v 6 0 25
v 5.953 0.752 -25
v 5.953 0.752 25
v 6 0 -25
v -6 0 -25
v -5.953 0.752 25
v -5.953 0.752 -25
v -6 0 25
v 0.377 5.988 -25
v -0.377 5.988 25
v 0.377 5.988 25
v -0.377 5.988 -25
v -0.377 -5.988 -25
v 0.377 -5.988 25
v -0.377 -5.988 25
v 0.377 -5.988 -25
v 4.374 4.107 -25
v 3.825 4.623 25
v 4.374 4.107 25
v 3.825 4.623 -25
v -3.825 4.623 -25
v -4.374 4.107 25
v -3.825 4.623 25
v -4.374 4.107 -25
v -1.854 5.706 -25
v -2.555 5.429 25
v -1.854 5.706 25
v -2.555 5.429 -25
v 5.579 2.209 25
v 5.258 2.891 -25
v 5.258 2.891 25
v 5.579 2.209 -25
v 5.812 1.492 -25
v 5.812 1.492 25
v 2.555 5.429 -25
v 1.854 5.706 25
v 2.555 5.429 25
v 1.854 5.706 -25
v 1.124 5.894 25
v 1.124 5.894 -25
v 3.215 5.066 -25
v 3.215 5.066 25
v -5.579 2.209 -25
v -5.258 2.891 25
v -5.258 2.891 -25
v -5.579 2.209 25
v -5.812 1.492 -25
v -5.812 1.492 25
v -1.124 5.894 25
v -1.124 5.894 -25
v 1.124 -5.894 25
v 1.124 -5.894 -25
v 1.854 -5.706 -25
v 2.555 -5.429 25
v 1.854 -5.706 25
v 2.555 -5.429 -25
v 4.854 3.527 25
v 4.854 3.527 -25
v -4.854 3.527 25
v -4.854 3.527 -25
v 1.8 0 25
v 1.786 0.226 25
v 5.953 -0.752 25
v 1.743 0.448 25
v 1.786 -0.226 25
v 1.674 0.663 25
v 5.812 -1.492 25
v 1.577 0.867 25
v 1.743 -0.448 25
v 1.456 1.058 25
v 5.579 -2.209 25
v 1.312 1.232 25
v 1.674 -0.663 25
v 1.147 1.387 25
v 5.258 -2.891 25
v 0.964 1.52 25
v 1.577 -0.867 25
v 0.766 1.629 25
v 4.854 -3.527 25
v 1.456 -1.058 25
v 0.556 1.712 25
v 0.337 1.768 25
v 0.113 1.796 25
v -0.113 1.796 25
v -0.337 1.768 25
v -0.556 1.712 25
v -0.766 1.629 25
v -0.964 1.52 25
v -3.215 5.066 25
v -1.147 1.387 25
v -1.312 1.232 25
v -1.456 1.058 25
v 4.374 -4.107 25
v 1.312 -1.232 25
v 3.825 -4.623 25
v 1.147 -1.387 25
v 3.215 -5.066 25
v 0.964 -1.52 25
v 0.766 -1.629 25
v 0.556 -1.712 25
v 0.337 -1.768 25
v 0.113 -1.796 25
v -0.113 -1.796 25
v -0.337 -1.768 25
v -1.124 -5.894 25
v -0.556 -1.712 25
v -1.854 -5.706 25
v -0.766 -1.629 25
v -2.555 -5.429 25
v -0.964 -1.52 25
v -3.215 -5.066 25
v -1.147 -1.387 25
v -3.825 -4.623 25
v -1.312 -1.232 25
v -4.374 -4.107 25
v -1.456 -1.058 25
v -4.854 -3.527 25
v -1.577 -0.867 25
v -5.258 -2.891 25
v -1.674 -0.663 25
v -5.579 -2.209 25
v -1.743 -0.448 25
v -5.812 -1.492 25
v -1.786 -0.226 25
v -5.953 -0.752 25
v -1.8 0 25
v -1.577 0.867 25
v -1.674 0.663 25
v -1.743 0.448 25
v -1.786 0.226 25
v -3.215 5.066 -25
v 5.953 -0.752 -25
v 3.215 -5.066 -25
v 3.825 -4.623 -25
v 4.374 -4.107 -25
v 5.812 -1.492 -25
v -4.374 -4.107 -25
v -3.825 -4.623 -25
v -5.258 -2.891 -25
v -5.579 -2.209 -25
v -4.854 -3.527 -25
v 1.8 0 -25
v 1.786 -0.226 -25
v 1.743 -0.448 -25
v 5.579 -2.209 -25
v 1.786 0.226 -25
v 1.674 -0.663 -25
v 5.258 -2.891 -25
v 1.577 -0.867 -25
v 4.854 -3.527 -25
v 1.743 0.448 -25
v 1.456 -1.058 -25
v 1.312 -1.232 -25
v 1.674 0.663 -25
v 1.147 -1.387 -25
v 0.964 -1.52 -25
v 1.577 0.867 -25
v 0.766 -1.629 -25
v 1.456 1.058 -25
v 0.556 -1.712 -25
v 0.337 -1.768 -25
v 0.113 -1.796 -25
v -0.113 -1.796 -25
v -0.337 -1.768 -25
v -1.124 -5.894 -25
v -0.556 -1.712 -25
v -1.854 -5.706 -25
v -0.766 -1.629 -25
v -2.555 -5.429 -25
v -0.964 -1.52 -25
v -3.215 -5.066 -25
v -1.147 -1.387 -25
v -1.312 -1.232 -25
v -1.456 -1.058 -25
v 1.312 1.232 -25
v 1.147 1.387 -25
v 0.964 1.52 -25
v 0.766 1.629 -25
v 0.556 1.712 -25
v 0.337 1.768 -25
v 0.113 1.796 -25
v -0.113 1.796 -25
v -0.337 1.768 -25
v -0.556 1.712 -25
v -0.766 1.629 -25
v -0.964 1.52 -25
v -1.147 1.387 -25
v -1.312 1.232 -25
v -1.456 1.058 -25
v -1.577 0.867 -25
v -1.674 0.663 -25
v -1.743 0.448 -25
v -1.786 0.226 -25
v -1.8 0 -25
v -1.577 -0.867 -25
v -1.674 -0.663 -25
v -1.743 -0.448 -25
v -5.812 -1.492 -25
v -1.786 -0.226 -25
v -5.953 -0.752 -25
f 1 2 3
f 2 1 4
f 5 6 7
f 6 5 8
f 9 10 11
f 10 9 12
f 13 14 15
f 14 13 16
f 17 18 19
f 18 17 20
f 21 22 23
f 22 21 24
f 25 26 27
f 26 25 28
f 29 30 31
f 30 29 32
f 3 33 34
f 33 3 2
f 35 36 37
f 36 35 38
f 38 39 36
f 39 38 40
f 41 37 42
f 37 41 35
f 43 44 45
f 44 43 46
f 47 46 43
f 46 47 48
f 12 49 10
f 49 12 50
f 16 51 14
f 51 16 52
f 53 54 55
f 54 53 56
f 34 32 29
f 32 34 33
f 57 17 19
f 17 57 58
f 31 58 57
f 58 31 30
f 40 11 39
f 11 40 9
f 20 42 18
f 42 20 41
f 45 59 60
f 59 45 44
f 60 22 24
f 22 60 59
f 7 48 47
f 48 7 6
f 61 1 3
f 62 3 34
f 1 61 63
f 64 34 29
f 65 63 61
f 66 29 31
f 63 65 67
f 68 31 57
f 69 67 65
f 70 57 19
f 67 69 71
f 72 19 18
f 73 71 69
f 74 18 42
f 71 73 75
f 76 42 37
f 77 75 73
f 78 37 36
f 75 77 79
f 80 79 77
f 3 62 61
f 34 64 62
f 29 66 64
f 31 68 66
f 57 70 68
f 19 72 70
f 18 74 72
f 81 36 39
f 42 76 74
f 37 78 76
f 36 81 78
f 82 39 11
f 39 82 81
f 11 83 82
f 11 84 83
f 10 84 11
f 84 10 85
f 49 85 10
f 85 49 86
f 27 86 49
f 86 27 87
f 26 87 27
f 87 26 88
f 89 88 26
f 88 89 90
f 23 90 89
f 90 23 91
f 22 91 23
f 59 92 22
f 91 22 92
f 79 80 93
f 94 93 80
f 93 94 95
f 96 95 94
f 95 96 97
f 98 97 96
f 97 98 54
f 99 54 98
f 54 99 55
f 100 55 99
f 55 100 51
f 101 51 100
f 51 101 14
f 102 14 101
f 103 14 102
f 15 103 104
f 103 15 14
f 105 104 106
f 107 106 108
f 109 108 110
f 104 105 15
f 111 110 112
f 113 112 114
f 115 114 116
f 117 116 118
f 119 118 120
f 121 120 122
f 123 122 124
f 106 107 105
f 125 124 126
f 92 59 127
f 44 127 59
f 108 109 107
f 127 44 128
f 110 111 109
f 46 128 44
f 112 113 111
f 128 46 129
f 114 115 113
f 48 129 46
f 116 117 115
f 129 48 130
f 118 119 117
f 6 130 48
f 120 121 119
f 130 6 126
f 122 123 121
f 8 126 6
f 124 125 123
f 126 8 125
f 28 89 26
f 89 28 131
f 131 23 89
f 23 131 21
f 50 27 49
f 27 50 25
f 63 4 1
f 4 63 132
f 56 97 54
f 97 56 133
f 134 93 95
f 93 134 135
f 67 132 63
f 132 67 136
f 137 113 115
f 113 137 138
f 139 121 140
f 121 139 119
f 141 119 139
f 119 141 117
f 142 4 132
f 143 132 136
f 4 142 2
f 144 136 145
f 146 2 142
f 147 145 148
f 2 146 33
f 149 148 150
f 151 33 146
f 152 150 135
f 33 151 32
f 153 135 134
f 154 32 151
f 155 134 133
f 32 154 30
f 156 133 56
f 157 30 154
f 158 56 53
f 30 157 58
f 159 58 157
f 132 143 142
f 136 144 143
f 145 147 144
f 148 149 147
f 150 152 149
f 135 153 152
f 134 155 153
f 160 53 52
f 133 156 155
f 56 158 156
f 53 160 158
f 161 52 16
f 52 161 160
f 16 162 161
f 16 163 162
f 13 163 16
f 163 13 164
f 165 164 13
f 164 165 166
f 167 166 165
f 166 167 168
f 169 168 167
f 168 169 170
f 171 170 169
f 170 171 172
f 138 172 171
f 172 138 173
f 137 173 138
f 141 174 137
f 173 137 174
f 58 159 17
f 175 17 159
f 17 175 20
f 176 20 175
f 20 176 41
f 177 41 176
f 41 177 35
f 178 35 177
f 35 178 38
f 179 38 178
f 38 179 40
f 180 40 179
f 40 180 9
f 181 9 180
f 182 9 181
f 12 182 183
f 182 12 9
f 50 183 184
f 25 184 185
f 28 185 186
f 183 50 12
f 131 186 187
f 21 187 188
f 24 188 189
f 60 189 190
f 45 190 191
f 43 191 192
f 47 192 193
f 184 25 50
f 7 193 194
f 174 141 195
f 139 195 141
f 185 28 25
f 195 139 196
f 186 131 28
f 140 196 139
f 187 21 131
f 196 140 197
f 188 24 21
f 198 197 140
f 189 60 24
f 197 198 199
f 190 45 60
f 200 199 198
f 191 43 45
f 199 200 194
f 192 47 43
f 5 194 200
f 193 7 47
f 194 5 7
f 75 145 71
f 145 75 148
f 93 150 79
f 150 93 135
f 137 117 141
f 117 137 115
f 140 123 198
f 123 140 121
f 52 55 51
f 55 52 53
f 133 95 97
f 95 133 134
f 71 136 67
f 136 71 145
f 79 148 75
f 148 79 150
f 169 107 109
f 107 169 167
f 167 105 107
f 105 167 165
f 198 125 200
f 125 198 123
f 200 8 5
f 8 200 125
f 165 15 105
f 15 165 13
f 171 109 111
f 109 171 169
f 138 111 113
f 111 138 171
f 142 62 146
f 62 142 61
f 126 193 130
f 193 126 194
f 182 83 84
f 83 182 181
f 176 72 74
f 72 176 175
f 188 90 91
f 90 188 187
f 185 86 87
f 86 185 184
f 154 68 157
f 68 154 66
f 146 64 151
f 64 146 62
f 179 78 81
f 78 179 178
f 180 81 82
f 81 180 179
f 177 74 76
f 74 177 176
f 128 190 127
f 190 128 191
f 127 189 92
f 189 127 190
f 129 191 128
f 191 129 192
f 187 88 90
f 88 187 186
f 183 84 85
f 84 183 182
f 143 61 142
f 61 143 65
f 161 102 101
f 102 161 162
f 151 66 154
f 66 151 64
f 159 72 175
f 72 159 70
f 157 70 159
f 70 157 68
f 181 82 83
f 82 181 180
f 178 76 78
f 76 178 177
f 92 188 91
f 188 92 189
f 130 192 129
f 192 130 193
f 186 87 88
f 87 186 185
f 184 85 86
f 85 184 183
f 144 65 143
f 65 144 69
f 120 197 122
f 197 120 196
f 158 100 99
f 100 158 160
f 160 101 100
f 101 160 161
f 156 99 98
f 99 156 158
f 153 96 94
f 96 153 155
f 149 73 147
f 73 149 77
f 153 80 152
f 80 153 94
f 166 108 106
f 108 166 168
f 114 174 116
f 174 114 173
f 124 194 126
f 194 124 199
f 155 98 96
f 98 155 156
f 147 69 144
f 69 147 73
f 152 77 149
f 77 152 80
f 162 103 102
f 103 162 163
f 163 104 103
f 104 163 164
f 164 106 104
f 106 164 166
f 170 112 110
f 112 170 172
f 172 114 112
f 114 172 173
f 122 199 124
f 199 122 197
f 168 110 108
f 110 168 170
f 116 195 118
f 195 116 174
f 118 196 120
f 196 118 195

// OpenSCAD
$fn = 50;


difference() {
	union() {
		translate(v = [0, 0, -25.0000000000]) {
			cylinder(h = 50, r = 6.0000000000);
		}
	}
	union() {
		translate(v = [0, 0, -100.0000000000]) {
			cylinder(h = 200, r = 1.8000000000);
		}
	}
}
